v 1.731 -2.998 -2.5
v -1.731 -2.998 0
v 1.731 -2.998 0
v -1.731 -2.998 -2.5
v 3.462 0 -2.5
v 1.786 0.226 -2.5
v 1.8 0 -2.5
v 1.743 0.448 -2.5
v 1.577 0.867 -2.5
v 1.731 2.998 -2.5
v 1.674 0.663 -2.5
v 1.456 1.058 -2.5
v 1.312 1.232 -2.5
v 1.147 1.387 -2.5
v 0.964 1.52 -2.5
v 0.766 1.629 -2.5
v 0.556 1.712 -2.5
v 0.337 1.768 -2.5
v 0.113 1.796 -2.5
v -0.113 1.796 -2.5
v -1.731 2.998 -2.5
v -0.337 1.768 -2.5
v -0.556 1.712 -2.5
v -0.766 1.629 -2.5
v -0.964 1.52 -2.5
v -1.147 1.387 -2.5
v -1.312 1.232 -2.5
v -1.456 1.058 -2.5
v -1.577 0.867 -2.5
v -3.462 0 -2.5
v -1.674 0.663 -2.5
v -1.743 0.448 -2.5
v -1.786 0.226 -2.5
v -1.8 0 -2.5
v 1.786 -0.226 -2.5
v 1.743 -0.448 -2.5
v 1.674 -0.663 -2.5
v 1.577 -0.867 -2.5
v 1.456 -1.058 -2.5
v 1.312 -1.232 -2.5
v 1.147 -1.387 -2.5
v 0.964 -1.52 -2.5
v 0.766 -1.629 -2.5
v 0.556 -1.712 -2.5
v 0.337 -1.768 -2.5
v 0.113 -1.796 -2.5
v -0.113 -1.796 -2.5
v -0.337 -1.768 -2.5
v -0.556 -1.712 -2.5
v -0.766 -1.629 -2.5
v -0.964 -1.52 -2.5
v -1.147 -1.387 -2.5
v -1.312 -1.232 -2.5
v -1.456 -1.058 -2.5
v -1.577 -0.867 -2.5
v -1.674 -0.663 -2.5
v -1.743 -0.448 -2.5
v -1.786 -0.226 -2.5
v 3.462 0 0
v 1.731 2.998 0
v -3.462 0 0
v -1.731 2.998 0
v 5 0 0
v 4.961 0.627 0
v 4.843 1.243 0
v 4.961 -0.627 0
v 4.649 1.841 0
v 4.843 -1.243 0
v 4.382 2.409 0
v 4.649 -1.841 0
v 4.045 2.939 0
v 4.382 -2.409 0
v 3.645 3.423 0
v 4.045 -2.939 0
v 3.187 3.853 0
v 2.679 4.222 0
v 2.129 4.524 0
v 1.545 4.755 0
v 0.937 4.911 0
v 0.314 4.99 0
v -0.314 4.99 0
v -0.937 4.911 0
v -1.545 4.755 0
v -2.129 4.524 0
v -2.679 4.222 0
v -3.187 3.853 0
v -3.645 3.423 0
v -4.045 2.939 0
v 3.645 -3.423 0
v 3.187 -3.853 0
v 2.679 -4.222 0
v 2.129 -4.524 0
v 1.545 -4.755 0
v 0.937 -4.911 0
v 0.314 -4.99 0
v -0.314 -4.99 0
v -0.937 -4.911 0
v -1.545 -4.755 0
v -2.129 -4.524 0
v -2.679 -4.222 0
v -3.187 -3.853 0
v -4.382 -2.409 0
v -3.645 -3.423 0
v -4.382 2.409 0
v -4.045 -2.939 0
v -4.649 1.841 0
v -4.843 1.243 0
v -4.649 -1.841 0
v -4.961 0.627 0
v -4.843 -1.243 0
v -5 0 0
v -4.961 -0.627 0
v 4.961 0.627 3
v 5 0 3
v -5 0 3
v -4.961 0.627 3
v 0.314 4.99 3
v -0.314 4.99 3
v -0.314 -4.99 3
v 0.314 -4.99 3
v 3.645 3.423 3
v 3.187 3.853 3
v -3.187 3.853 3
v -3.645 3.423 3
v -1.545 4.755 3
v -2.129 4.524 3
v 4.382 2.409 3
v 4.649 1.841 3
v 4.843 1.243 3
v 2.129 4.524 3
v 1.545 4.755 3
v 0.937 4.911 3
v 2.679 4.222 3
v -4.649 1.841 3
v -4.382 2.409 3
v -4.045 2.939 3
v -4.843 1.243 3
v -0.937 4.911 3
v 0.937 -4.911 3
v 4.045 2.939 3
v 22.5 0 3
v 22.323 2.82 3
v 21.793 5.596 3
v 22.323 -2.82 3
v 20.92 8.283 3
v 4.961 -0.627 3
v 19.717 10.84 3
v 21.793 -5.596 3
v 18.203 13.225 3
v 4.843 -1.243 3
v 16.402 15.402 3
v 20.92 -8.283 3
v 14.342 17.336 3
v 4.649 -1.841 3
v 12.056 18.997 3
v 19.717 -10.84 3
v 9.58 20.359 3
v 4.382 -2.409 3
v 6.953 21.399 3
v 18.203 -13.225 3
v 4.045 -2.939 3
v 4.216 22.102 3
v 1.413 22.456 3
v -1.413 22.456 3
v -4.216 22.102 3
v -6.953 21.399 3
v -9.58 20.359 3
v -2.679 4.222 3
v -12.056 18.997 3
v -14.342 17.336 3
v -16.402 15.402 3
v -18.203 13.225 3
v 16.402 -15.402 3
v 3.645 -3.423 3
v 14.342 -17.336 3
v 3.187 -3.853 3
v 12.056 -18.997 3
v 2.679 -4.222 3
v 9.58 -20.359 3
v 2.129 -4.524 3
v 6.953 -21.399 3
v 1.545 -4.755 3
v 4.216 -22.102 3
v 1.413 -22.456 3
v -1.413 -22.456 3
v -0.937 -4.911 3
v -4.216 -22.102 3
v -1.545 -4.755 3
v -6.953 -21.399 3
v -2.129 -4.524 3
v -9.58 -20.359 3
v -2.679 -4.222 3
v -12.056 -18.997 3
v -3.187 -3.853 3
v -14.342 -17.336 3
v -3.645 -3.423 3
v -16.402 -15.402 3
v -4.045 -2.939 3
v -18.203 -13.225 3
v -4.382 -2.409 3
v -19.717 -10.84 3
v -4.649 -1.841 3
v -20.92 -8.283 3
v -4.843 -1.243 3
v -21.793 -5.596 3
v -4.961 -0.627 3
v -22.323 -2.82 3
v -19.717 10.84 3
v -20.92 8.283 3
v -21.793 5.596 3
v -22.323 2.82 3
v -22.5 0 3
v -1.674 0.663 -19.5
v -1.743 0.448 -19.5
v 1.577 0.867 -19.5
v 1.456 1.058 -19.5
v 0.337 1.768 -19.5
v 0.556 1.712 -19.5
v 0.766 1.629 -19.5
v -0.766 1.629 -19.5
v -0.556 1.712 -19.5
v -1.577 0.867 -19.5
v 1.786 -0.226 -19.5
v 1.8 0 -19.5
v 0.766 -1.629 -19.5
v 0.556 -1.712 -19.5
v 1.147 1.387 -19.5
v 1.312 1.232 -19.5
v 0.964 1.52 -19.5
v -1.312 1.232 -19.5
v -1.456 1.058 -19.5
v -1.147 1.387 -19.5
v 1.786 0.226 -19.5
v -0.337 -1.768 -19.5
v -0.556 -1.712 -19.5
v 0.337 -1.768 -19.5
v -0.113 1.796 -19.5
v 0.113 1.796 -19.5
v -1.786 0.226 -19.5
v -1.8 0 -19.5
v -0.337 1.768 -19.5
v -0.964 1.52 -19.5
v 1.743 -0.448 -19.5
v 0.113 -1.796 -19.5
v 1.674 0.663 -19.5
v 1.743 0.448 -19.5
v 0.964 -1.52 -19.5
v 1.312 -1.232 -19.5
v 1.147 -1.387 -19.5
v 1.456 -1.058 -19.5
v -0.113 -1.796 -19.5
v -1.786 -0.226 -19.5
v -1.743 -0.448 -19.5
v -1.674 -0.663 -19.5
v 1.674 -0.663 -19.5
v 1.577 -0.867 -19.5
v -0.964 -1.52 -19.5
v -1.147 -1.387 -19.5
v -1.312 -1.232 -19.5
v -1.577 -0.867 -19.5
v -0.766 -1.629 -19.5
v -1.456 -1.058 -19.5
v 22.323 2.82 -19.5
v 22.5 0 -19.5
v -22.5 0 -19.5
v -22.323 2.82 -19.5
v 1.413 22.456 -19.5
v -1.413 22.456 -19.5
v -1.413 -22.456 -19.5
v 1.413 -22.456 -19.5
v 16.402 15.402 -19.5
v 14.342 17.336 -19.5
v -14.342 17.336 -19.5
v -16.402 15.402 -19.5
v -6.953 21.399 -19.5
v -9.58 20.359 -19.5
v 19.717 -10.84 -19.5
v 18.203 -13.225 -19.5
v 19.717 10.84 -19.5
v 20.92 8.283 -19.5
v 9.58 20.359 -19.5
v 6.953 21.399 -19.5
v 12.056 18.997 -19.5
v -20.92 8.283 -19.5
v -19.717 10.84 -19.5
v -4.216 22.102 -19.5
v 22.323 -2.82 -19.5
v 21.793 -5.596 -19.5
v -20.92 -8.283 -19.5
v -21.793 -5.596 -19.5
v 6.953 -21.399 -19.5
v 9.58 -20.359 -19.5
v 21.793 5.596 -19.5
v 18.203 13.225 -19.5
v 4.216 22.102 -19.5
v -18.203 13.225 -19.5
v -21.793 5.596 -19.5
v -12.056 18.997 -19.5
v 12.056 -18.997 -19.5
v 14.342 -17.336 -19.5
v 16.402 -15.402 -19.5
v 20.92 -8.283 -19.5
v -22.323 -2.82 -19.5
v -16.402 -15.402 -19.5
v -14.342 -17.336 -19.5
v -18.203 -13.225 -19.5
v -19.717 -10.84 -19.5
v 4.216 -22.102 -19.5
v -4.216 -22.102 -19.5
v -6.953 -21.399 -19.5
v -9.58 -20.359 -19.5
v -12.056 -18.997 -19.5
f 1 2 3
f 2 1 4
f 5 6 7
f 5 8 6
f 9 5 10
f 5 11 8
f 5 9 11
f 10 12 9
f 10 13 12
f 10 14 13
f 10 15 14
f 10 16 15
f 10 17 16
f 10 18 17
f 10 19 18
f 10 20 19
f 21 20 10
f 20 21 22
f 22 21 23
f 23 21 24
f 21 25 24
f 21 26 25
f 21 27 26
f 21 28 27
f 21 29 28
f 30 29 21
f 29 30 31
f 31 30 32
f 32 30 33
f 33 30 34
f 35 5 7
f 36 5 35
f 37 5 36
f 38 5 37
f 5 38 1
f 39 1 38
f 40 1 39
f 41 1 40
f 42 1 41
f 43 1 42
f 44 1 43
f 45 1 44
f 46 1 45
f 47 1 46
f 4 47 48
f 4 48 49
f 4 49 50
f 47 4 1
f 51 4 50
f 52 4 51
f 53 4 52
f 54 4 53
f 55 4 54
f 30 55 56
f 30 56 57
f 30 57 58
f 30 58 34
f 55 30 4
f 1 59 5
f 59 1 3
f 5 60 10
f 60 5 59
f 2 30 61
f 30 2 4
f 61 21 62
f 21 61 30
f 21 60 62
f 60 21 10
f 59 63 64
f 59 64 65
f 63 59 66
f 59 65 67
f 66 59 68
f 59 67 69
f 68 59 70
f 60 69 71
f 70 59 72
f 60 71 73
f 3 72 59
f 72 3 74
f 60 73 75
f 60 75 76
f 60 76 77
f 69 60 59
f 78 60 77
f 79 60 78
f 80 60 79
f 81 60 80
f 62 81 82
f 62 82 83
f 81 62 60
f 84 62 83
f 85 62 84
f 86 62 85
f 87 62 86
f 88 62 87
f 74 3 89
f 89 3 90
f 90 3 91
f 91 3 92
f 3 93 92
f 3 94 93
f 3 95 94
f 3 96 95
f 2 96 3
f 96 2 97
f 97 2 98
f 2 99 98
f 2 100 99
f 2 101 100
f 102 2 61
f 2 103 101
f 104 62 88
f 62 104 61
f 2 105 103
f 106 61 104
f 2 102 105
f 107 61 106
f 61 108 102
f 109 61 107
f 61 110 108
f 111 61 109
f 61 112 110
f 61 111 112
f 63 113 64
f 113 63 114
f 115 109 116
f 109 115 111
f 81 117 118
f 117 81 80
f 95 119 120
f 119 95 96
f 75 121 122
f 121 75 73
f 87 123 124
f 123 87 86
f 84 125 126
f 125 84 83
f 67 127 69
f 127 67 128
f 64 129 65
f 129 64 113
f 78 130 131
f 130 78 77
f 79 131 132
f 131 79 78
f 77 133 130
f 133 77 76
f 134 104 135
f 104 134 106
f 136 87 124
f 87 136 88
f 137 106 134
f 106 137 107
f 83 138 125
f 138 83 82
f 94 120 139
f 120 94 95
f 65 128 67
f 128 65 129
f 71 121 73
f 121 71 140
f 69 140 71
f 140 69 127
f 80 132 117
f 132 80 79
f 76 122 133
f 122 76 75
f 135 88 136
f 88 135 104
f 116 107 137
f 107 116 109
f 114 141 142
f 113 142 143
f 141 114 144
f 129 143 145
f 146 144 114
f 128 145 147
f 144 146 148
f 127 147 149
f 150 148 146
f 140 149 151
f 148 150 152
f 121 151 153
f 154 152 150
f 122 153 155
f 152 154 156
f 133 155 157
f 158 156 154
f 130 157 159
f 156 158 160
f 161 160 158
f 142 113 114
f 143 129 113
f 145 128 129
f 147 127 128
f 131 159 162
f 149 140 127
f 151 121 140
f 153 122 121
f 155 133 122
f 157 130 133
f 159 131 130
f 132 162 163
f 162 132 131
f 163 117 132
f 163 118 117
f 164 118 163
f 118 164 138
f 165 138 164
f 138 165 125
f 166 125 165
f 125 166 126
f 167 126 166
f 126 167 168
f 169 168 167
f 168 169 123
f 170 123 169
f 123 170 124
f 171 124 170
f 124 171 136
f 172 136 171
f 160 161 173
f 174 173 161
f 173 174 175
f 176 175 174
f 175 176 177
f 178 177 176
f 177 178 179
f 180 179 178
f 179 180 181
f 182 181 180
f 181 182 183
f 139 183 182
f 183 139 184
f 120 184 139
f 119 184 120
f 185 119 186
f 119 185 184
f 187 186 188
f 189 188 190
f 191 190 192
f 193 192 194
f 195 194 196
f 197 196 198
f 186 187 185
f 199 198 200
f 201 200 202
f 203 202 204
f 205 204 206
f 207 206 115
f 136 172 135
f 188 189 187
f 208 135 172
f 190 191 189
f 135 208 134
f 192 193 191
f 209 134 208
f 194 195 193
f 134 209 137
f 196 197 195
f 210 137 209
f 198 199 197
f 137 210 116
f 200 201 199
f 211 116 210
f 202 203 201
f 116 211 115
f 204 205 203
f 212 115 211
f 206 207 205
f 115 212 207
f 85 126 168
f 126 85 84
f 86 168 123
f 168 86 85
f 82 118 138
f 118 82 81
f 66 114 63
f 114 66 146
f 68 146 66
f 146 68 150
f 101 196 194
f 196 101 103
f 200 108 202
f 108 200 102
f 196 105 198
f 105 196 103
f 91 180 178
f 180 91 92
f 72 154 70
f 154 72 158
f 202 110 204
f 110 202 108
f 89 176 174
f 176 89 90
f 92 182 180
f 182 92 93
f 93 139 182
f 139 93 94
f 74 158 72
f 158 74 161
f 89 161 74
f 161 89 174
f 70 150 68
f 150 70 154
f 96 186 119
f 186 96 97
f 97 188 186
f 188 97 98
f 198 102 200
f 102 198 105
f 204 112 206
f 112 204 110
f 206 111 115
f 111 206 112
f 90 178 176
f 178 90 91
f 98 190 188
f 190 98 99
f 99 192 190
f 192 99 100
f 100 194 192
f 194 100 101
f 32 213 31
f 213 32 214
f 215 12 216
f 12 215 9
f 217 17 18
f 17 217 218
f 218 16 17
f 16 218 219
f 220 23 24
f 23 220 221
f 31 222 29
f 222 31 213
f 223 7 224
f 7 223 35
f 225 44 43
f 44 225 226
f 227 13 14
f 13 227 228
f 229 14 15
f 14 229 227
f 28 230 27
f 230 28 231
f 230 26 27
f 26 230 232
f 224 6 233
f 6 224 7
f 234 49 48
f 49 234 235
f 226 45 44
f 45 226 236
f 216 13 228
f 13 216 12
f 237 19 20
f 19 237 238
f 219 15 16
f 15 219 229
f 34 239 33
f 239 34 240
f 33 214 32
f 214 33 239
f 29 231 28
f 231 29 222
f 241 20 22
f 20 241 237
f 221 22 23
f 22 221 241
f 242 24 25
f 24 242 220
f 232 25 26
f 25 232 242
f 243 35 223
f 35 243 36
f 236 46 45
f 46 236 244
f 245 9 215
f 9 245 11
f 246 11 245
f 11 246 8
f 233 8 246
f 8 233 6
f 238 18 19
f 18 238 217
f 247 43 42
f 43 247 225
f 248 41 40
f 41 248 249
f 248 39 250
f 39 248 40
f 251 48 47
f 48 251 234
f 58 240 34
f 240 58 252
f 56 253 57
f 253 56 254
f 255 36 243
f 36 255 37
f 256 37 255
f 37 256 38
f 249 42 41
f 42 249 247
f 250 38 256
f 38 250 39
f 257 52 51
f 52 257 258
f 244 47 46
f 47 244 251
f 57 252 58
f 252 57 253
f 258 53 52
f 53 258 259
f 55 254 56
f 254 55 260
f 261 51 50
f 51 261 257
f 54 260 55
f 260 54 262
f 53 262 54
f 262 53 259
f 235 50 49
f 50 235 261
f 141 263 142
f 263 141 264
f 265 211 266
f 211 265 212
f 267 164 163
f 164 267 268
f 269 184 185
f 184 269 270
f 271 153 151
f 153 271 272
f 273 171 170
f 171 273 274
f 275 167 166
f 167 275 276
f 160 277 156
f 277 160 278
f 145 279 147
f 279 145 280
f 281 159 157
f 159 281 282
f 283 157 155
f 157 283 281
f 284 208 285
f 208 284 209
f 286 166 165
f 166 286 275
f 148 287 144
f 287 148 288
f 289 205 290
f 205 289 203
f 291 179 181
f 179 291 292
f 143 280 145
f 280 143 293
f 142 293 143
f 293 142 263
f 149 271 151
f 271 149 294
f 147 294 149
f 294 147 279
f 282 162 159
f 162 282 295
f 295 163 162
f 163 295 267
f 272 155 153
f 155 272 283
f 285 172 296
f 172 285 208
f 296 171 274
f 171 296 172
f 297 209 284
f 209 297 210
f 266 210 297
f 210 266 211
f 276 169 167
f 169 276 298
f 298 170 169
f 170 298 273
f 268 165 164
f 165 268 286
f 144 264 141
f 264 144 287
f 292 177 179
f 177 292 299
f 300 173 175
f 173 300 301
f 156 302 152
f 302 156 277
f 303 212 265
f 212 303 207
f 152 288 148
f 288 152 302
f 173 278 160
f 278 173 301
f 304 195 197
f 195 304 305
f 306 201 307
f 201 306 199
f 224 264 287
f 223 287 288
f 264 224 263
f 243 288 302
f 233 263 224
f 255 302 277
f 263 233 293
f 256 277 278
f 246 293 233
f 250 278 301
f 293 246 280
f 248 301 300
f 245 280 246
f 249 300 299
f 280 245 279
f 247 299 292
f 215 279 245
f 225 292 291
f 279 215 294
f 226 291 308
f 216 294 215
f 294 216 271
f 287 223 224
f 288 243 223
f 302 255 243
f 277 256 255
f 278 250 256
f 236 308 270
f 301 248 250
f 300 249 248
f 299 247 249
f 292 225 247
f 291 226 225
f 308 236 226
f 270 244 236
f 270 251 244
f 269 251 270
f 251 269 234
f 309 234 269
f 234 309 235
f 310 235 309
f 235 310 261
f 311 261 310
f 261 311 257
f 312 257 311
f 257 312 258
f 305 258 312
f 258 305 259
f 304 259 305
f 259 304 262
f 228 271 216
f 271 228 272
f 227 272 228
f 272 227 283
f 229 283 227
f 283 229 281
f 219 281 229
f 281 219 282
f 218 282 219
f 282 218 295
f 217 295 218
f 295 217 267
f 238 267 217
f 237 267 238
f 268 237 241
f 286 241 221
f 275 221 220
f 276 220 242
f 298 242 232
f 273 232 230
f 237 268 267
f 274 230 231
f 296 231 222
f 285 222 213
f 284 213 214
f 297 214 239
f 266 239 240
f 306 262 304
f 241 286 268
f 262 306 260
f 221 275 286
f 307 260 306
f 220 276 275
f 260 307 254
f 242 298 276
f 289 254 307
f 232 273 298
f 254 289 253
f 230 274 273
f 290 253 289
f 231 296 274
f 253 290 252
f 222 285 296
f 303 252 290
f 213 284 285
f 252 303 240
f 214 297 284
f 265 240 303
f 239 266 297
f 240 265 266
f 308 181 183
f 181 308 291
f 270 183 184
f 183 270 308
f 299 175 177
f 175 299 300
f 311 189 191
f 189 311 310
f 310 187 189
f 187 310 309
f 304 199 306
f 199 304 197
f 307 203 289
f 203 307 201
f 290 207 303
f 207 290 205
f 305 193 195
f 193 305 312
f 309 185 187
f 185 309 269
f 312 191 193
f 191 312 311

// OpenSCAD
$fn = 50;


difference() {
	union() {
		translate(v = [0, 0, -19.5000000000]) {
			cylinder(h = 22.5000000000, r = 22.5000000000);
		}
	}
	union() {
		translate(v = [0, 0, 0]) {
			rotate(a = [0, 0, 0]) {
				difference() {
					union() {
						translate(v = [0, 0, -2.5000000000]) {
							linear_extrude(height = 2.5000000000) {
								polygon(points = [[3.4620000000, 0.0000000000], [1.7310000000, 2.9981799479], [-1.7310000000, 2.9981799479], [-3.4620000000, 0.0000000000], [-1.7310000000, -2.9981799479], [1.7310000000, -2.9981799479]]);
							}
						}
					}
					union();
				}
			}
		}
		#cylinder(h = 3, r = 5.0000000000);
		#translate(v = [0, 0, -100.0000000000]) {
			cylinder(h = 200, r = 1.8000000000);
		}
	}
}
